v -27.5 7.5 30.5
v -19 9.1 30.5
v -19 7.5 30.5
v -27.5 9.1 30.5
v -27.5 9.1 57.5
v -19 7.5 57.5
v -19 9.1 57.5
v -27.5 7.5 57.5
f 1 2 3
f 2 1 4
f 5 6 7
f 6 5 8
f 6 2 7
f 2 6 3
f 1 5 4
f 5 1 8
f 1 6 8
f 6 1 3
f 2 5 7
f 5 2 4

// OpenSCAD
// file: D:/Projects/assembly-workshop/outputs/Screen_Pi_Hue_SCR5-H_2026-10-30/checks/geometry.scad
// SCR5-G; mm; FRONT view: X right, Z up, Y into rack. Glass/plate front Y=0.
// Measured values: work/screen-5in/Dimensions.md. Physical fit/strength UNKNOWN.
part="plate";
DROP=0.45; // coupon winner can be substituted here; all three pins use this DROP
LIP=0.8; LIP_ON=true;
LIP_EDGES=[true,true,false,false]; // left,right,bottom,top; Brian: side lips only, cosmetic
FRAME_STEP=1.5; // measured glass-edge inset to metal LCD frame, left/right only
SHIM=0; // moves rear frame seat and plate-boss mating face back
$fn=48;
GCX=33; GCZ=41.5; PW=252; PH=88.8; PT=4;
GW=120.7; GH=77.2; CLEAR=0.2; WW=GW+2*CLEAR; WH=GH+2*CLEAR;
SEAT=13.3+SHIM; FT=3;
SO=[56.45,34]; BTN_X=[45.5,35.5,25.5];
PCB_TOP=38; GAP=0.10; LEAF_T=0.8;
HOLE=[3.4,40.3,44.7];
BX=[GCX-68,GCX+68]; BZ=[10,72];
// DSI connector X extent is unmeasured: conservative assumed 8 mm inward from PCB edge.
DSI=[GCX-60.5,9.1,GCZ-38+30,8,5.25,21];
module xz(y,d){translate([0,y+d,0])rotate([90,0,0])linear_extrude(d)children();}
// rr/rack_slots copied from SCR5-F; same exact slot centres, outline shifted -0.05 Z to centre 44.4.
module rr(w,h,r){hull()for(x=[-w/2+r,w/2-r],z=[-h/2+r,h/2-r])translate([x,z])circle(r=r);}
module rack_slots(){for(x=[-118.2625,118.2625],z=[6.323,38.127,50.773,82.577])translate([x,z])hull()for(dx=[-1.5,1.5])translate([dx,0])circle(d=7);}
module cyl_y(x,y,z,d,h){translate([x,y,z])rotate([-90,0,0])cylinder(d=d,h=h);}
module window_cut(){
  xz(-0.02,4.04)translate([GCX,GCZ])square([WW,WH],center=true);
  // 0.3 x 45-degree chamfer, square corners, front only.
  translate([GCX,0.3,GCZ])rotate([90,0,0])
    linear_extrude(height=0.3,scale=[(WW+0.6)/WW,(WH+0.6)/WH])square([WW,WH],center=true);
}
module lips(){
  // Cosmetic side ledges only; rear frame/standoffs set depth and retain the screen.
  if(LIP_ON)for(i=[0:3])if(LIP_EDGES[i]){
    if(i<2)translate([GCX+(i==0?-WW/2:WW/2-LIP),2.5,GCZ-GH/2+4])cube([LIP,0.8,GH-8]);
    else translate([GCX-GW/2+4,2.5,GCZ+(i==2?-WH/2:WH/2-LIP)])cube([GW-8,0.8,LIP]);
  }
}
// Leaf/nub/bump geometry copied from SCR5-WP-A, translated to this glass centre.
module leaves(){for(x=BTN_X)translate([GCX+x-1.5,0,GCZ]){
  translate([0,0,PCB_TOP+GAP+0.9+0.1])cube([3,11.8,LEAF_T]);
  translate([0,10.2,PCB_TOP+GAP])cube([3,1.4,1.0+LEAF_T/2]);
  translate([0,10.4,PCB_TOP+GAP+1.0+LEAF_T])cube([3,1.0,0.9]);
}}
module plate(){difference(){union(){
  difference(){xz(0,PT)translate([0,PH/2])rr(PW,PH,2.5);window_cut();}
  for(x=BX,z=BZ)cyl_y(x,3.9,z,8,SEAT-3.9);
  leaves(); lips();
 }
 xz(-0.02,4.04)rack_slots();
 for(x=BTN_X)translate([GCX+x-HOLE[0]/2,-0.02,GCZ+HOLE[1]])cube([HOLE[0],SEAT+FT+0.04,HOLE[2]-HOLE[1]]);
 // Printed-in screw pilots (no heat-set OD assumption): nominal M2.5, fit UNKNOWN.
 for(x=BX,z=BZ)cyl_y(x,SEAT-6,z,2.1,6.02);
 // Rear engraving, 0.5 deep, left field.
 xz(3.5,0.52)translate([-75,40])mirror([1,0])text("SCR5-G",size=6,halign="center",font="Liberation Sans:style=Bold");
}}
module frame_blank(){
  // C-shaped perimeter; no material across the board centre / touch FPC.
  xz(SEAT,FT)translate([GCX,GCZ])difference(){square([132,76],center=true);square([116,60],center=true);}
  for(sx=[-1,1],sz=[-1,1])cyl_y(GCX+sx*SO[0],SEAT,GCZ+sz*SO[1],9,FT);
  for(x=BX,z=BZ)hull(){cyl_y(x,SEAT,z,8,FT);cyl_y(GCX+(x<GCX?-62:62),SEAT,z,8,FT);}
}
module dsi_keepout(){translate([DSI[0]-3,DSI[1]-3,DSI[2]-3])cube([DSI[3]+6,DSI[4]+6,DSI[5]+6]);}
module ribbon_route(){
  // Open left/up corridor 18 mm wide; extends past top of plate.
  translate([GCX-84,6.1,GCZ-11])cube([18,24,65]);
  translate([GCX-84,6.1,GCZ-11])cube([32,24,27]);
}
module frame(){difference(){frame_blank();dsi_keepout();ribbon_route();
 for(sx=[-1,1],sz=[-1,1])cyl_y(GCX+sx*SO[0],SEAT-0.02,GCZ+sz*SO[1],2.8,FT+0.04);
 for(x=BX,z=BZ)cyl_y(x,SEAT-0.02,z,2.8,FT+0.04);
}}
// Pin polygon/cap/notch/dot design copied unchanged from SCR5-WP-A.
module pin(d,dots){s=2*d+0.5;difference(){union(){
 translate([-1.5,0,0])rotate([90,0,90])linear_extrude(3)polygon([
 [-s-0.02,40.5],[10.2,40.5],[10.2,41.0],[11.5,41.0],[11.5+2*d,41.0-d],[15,41.0-d],[15,44.5],[-s-0.02,44.5]]);
 translate([-2.5,-s-1.5,39.6])cube([5,1.5,5.8]);
 }for(i=[0:dots-1])translate([(i-(dots-1)/2)*1.4,-s-1.5-0.01,43.5])rotate([-90,0,0])cylinder(d=0.9,h=0.4);}}
module placed_pin(i){translate([GCX+BTN_X[i],0,GCZ])pin(DROP,i+1);}
// Measured layers: cover glass 0.9 + second glass 1.6, metal frame 3.0,
// open gap 2.0, PCB 1.6. Metal frame inset ~1.5 at LEFT/RIGHT only.
// PCB centred under glass and full metal-frame top/bottom extent remain UNKNOWN.
module glass(){translate([GCX-GW/2,0,GCZ-GH/2])cube([GW,2.5,GH]);}
module lcd(){
  translate([GCX-GW/2+FRAME_STEP,2.5,GCZ-GH/2])cube([GW-2*FRAME_STEP,3.0,GH]);
}
module pcb(){translate([GCX-60.5,7.5,GCZ-38])cube([121,1.6,76]);}
module standoffs(){for(sx=[-1,1],sz=[-1,1])difference(){cyl_y(GCX+sx*SO[0],9.1,GCZ+sz*SO[1],5.5,4.2);cyl_y(GCX+sx*SO[0],9.08,GCZ+sz*SO[1],2.5,4.24);}}
module buttons(){for(x=BTN_X){
 translate([GCX+x-3.5,9.1,GCZ+38-3.4])cube([7,3.6,2.4]);
 translate([GCX+x-1.5,9.1,GCZ+37])cube([3,3.6,1]);
}}
module dsi(){translate([DSI[0],DSI[1],DSI[2]])cube([DSI[3],DSI[4],DSI[5]]);}
module touch(){translate([GCX-10,9.1,GCZ-5])cube([20,2,10]);} // lateral extent unmeasured
module dummy(){glass();lcd();pcb();standoffs();buttons();dsi();touch();}
module assembly(){color("gray")plate();color("orange")frame();for(i=[0:2])color("cyan")placed_pin(i);color([0.2,0.3,0.4,0.4])dummy();}
// main file
include <D:/Projects/assembly-workshop/outputs/Screen_Pi_Hue_SCR5-H_2026-10-30/checks/geometry.scad>
intersection(){pcb();ribbon_route();}
